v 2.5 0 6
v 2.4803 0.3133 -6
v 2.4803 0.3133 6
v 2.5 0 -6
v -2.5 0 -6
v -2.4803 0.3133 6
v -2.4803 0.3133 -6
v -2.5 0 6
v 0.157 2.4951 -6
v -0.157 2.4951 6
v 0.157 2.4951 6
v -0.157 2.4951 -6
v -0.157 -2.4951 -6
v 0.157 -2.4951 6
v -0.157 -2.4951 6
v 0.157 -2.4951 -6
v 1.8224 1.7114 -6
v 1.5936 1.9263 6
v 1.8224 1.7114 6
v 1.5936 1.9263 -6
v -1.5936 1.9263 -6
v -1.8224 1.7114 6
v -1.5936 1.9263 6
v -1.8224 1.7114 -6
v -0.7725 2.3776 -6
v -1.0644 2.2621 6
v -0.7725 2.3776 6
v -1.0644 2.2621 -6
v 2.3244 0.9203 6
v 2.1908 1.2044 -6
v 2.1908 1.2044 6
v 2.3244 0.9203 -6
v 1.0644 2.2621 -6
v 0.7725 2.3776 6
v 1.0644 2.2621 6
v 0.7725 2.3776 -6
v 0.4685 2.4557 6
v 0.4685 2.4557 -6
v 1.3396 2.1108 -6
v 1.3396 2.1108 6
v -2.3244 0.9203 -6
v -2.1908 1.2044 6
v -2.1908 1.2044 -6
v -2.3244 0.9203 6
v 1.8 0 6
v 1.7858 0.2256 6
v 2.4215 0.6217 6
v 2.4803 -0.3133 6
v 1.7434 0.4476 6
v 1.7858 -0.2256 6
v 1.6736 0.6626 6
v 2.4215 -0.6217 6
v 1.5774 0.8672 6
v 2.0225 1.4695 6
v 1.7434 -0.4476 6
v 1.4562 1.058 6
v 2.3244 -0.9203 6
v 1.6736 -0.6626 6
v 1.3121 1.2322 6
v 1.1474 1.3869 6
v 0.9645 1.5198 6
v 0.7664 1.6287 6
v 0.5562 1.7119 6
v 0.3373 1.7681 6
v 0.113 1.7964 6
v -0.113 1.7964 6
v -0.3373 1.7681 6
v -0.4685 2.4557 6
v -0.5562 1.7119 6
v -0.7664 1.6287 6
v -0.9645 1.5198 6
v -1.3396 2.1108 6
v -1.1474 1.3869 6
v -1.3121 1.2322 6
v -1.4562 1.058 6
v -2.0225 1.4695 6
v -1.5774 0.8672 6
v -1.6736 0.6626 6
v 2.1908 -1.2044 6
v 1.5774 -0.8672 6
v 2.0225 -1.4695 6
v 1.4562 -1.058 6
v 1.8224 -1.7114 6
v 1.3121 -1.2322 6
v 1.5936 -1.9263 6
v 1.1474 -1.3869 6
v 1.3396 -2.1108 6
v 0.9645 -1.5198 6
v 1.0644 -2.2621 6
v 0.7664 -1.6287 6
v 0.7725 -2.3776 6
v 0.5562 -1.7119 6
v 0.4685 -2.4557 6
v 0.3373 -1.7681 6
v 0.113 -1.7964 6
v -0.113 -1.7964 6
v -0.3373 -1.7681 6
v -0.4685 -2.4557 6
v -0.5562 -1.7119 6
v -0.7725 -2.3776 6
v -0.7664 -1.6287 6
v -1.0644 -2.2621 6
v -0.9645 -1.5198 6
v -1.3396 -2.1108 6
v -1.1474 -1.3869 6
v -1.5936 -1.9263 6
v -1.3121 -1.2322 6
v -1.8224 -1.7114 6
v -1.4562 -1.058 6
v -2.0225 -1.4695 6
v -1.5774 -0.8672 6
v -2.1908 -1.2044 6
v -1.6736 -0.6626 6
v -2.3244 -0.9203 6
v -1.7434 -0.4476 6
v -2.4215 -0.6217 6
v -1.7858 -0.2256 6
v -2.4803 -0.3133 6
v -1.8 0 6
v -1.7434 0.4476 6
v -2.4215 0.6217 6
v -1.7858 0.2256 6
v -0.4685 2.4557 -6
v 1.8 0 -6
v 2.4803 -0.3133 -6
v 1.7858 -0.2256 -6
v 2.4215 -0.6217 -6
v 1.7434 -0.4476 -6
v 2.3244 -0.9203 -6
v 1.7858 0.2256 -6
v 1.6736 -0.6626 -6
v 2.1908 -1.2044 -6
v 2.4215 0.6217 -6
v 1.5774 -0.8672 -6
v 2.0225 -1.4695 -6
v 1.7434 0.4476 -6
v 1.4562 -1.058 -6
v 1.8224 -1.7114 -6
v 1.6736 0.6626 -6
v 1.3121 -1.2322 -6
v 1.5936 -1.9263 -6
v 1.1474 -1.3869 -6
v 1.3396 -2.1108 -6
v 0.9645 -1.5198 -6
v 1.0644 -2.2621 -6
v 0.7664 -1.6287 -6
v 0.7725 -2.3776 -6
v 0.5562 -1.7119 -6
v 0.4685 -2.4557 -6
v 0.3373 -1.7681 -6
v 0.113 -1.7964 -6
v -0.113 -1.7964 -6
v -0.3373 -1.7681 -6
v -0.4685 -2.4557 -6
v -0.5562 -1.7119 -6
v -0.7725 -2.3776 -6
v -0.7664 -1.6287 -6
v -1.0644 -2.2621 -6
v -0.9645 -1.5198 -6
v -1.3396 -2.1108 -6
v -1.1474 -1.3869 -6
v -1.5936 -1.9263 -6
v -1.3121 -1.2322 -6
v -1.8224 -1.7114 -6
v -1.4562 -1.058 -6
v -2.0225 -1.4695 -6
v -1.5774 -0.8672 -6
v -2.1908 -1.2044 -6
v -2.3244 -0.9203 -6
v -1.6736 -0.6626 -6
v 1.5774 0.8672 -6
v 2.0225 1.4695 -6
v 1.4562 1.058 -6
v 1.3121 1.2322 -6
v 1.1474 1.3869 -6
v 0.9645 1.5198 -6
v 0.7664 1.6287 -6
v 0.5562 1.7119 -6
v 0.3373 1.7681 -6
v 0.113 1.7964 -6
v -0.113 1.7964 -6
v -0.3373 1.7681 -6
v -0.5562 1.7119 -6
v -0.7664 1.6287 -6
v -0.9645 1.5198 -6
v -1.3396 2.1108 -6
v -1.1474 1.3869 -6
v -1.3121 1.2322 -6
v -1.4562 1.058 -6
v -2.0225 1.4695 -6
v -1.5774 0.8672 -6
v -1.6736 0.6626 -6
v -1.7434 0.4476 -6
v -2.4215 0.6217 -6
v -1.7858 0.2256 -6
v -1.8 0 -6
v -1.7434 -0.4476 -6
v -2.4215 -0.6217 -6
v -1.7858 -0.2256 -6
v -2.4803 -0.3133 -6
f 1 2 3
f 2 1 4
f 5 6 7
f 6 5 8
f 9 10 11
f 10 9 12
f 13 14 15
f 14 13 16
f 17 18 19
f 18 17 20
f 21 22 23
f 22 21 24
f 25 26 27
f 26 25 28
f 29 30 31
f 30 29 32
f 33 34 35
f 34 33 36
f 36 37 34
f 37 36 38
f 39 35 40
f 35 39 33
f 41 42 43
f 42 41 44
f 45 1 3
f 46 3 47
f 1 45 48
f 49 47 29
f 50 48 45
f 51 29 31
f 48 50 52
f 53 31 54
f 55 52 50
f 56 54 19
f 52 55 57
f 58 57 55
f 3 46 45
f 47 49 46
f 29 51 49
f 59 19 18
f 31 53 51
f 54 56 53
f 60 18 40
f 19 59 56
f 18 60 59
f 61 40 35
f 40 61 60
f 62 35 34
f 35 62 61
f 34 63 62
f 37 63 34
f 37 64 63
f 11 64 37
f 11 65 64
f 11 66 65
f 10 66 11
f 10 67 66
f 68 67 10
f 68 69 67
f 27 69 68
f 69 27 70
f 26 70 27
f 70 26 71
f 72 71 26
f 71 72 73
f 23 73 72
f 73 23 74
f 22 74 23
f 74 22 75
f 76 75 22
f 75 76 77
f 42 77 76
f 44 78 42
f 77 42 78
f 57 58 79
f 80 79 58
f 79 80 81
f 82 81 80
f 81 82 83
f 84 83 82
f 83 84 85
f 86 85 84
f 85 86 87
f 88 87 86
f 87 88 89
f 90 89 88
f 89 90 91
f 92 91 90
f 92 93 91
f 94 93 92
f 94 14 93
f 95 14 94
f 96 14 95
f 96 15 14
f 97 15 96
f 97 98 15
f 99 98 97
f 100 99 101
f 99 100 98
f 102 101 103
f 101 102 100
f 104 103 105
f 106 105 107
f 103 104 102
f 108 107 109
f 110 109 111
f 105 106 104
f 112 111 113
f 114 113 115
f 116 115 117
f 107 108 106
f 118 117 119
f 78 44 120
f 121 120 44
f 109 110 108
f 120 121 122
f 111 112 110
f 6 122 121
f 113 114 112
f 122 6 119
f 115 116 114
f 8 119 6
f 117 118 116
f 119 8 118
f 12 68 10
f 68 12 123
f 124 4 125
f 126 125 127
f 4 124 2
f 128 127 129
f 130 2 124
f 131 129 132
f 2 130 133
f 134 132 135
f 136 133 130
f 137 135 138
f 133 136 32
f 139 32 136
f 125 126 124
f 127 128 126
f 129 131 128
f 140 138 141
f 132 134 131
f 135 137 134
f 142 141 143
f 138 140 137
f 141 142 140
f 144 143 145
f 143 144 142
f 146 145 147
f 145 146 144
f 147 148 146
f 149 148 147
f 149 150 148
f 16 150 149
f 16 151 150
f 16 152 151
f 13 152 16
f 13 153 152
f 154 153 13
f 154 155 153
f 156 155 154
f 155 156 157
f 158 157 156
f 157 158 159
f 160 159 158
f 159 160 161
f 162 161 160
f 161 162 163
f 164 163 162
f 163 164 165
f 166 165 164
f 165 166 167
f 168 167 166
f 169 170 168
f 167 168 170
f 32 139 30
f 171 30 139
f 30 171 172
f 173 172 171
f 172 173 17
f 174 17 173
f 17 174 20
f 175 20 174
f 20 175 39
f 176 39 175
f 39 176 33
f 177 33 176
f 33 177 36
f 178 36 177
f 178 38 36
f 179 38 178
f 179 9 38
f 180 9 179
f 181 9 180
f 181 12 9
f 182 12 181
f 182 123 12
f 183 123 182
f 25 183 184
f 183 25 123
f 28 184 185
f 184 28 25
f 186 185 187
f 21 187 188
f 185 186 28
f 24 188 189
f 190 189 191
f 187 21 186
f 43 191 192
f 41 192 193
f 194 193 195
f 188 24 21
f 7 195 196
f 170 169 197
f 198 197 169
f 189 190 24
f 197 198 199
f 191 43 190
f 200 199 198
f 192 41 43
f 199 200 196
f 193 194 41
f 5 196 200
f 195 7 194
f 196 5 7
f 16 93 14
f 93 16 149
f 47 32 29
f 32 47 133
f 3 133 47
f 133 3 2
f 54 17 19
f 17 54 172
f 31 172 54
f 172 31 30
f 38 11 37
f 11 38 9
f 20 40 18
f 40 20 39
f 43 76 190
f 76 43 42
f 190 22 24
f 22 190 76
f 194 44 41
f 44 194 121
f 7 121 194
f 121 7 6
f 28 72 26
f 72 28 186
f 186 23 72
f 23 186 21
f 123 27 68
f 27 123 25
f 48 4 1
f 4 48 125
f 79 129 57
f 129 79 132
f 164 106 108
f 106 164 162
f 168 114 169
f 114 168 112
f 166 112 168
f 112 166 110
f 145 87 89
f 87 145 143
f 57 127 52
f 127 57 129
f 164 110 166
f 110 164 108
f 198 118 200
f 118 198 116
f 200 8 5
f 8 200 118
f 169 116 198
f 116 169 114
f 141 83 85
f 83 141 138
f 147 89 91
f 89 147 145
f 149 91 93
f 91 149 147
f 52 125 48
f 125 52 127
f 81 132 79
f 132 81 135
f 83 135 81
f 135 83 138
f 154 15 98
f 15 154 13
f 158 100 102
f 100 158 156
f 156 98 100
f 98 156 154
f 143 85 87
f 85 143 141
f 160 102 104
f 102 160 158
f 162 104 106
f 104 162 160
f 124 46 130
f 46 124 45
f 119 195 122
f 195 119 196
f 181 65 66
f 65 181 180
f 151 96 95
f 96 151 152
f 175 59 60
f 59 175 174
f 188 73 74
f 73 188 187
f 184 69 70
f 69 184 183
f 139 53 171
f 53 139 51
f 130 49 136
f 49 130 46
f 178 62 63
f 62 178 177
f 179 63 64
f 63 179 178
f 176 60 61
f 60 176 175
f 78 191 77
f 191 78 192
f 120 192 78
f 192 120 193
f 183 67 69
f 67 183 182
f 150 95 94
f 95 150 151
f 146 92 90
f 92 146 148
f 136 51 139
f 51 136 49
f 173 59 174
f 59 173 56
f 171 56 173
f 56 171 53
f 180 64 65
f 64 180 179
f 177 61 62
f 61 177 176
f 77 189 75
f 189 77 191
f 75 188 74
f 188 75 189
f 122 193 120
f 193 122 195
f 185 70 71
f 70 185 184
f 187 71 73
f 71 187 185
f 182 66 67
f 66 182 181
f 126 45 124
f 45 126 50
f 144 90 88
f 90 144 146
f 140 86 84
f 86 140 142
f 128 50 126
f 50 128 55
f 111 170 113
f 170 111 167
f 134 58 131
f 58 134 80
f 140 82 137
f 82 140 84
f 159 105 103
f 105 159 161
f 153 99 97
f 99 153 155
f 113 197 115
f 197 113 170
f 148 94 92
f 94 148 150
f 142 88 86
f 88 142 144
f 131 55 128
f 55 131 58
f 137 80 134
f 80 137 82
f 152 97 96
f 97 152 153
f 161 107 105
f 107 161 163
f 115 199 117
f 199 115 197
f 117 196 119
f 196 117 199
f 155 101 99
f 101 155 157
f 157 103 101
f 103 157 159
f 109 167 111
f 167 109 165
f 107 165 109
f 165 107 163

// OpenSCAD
$fn = 50;


difference() {
	union() {
		translate(v = [0, 0, -6.0000000000]) {
			cylinder(h = 12, r = 2.5000000000);
		}
	}
	union() {
		translate(v = [0, 0, -100.0000000000]) {
			cylinder(h = 200, r = 1.8000000000);
		}
	}
}
